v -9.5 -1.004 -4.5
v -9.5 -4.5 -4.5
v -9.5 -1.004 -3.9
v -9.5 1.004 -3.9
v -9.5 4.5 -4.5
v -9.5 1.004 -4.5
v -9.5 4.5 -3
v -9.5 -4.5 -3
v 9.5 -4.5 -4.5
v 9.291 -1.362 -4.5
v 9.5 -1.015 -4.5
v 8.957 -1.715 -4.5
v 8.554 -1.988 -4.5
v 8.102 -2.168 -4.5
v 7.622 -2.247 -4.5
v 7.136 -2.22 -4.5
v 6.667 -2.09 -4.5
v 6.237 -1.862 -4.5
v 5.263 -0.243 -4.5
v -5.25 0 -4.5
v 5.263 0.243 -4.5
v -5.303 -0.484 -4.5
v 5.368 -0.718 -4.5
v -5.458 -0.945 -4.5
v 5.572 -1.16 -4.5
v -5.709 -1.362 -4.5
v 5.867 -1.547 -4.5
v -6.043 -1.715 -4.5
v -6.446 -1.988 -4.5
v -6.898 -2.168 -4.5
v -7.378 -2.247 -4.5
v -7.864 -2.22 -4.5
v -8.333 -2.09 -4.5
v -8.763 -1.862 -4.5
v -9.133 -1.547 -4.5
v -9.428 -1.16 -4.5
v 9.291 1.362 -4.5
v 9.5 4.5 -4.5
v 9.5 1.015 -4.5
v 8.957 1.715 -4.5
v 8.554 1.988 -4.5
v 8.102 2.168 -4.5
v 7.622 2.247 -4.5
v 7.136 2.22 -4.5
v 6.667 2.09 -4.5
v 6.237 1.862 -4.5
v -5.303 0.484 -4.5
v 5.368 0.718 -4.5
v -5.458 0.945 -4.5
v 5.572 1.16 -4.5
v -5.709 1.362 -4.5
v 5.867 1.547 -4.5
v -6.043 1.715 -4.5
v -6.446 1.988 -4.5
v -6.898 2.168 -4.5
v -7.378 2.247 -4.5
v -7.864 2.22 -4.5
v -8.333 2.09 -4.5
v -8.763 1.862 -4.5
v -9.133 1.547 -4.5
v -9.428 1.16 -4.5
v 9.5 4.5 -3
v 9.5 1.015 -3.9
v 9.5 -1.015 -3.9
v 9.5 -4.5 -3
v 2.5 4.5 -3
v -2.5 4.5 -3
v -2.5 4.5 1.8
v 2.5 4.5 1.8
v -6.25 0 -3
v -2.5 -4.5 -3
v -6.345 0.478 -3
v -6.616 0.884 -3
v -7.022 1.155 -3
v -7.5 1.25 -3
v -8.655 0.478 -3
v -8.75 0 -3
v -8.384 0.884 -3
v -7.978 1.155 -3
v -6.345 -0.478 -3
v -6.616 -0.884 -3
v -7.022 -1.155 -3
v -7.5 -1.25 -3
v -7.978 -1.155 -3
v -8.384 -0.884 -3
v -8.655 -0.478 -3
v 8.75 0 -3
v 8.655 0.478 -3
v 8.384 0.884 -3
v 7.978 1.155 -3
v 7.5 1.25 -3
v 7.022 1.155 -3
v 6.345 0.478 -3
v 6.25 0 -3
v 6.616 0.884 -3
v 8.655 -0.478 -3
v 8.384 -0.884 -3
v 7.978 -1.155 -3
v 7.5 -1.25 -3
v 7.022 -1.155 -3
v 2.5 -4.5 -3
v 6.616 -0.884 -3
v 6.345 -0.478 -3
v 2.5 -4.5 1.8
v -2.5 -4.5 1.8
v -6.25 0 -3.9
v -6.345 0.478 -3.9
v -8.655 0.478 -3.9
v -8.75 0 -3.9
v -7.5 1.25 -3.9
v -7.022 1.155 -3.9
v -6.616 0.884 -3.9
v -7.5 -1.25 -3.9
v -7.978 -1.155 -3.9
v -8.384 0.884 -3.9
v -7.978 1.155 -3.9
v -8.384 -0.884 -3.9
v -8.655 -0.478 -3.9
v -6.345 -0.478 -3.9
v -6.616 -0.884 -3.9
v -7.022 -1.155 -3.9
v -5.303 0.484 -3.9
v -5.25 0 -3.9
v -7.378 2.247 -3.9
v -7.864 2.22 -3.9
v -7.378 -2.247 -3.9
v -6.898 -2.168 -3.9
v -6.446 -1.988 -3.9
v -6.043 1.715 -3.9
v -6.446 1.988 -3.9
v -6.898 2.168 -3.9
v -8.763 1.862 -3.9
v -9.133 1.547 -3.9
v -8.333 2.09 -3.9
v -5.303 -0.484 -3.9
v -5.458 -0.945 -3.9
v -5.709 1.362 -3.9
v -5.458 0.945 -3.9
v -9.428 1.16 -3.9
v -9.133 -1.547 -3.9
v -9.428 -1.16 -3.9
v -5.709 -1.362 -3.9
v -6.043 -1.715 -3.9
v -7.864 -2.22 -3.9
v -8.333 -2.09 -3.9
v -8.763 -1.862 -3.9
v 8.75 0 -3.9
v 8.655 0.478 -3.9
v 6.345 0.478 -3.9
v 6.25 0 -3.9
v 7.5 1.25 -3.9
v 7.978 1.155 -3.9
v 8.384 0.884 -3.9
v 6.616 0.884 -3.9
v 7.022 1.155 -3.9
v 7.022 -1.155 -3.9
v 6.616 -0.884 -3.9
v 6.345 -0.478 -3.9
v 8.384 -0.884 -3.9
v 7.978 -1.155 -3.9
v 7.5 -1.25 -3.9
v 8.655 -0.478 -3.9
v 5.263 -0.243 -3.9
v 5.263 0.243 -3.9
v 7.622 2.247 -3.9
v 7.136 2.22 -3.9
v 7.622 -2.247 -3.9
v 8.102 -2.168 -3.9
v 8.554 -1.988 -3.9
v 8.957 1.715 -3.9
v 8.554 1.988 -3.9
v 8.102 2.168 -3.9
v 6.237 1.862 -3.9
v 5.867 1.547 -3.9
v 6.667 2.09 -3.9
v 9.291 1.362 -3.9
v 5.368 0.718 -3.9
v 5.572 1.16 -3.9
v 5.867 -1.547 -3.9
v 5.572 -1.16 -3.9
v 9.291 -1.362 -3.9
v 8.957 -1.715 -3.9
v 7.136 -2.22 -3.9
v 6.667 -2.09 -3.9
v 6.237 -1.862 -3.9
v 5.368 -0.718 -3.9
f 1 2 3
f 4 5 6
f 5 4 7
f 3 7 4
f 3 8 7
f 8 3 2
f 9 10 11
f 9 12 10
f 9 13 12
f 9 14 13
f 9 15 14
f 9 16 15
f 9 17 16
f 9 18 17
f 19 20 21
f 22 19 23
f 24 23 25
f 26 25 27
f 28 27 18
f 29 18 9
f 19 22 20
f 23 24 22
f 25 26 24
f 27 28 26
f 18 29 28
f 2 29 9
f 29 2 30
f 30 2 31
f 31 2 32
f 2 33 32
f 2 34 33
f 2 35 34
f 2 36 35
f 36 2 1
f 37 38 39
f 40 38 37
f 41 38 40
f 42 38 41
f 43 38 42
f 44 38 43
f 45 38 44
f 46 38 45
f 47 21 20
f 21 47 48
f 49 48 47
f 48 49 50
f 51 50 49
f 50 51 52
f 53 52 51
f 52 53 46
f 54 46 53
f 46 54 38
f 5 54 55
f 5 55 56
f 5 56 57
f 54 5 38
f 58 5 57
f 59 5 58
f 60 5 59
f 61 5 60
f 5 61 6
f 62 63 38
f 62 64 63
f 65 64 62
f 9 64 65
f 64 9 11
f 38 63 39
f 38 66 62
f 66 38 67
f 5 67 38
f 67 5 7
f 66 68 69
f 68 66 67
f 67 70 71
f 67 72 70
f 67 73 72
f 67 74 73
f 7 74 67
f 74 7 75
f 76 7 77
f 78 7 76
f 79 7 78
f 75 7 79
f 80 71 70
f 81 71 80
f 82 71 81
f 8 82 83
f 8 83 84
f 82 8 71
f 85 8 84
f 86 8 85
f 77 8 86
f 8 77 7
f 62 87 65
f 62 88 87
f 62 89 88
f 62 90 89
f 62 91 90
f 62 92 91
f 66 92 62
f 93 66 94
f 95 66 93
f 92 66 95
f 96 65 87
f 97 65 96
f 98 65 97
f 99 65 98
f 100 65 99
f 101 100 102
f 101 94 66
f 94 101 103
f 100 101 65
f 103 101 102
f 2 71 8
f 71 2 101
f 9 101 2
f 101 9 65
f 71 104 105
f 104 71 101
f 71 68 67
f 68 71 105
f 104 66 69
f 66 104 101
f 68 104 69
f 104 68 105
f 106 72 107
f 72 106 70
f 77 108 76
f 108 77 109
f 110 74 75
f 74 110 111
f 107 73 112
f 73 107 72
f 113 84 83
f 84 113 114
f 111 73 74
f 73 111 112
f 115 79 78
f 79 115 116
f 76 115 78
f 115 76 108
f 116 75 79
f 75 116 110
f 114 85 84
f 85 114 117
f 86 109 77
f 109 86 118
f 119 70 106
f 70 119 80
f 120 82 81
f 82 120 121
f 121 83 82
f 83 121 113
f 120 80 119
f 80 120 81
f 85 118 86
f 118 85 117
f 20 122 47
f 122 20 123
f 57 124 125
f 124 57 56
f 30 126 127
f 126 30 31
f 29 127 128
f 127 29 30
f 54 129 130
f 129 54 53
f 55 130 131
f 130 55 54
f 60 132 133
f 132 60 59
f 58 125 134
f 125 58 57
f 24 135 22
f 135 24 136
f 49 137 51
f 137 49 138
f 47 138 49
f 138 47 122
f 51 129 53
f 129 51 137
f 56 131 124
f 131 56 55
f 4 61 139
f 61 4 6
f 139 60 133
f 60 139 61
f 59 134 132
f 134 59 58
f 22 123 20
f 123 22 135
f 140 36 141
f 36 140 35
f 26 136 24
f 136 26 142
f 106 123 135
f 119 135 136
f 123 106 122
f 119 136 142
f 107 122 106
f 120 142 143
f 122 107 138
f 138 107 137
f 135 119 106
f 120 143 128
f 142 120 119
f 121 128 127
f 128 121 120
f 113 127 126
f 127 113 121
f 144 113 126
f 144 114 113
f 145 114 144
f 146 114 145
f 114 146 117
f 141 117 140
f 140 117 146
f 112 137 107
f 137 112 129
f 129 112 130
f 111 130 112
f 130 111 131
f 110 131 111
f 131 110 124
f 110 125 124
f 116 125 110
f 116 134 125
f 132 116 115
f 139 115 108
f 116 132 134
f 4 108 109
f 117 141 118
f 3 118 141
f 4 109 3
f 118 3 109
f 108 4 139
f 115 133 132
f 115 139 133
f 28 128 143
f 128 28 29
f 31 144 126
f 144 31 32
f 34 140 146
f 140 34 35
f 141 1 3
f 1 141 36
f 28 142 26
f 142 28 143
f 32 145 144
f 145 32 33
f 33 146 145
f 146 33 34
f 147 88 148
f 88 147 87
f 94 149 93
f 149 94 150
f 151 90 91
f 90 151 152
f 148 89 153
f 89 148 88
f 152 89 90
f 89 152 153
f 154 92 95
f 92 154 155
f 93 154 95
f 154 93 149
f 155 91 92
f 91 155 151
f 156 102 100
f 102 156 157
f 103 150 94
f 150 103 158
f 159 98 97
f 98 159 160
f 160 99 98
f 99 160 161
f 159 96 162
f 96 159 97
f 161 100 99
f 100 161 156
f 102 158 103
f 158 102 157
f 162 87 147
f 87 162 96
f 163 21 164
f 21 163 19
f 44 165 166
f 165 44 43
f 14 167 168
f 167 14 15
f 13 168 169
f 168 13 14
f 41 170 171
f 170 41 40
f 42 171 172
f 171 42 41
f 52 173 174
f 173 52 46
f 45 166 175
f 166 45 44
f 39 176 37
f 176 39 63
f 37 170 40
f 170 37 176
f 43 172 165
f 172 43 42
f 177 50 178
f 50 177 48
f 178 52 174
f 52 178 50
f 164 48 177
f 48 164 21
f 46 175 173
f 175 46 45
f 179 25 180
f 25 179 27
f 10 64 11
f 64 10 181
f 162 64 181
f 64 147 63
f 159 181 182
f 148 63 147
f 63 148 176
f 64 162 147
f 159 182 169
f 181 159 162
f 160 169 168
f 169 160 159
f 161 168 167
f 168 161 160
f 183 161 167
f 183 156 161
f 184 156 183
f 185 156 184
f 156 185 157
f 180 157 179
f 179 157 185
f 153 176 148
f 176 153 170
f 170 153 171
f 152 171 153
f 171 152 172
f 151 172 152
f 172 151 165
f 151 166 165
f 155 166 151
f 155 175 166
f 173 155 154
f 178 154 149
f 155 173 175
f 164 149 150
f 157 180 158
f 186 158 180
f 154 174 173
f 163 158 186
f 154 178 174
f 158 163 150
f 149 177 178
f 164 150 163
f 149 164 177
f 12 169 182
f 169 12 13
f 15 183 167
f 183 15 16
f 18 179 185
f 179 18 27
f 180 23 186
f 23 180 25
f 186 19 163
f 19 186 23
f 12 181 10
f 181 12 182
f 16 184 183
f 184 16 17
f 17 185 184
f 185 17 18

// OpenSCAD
// file: config.scad
comp_height = 10;
backplate_height = 4;
thin_layer_height = .5;

module box(h)
{
    hull() for (i=[-1,1]) for (j=[-1,1]) translate([j*(6+69-10)/2,i*(6+138-10)/2,0]) cylinder(d=10, h=h, center=true);
}

module grove(h=60)
{
    hull() {
        cylinder(d=3.5, h=h, center=true);
        translate([0,10,0]) cylinder(d=3.5, h=h, center=true);
    }
}
// main file
$fa=0.5; // default minimum facet angle is now 0.5
$fs=0.5; // default minimum facet size is now 0.5 mm

include <config.scad>

mirror([0,0,1]) difference() {
    translate([0,0,-0.5]) {
        translate([0,0,4.25]) cube([19,9,1.5], center=true);
        translate([0,0,1.8]) cube([5,9,6.2], center=true);
    }
    for(i=[-1,1]) translate([i*7.5,0,4.5]) {
        cylinder(d=2.5, h=4, center=true);
        translate([0,0,1.4]) cylinder(d=4.5, h=4, center=true);
    }
}
